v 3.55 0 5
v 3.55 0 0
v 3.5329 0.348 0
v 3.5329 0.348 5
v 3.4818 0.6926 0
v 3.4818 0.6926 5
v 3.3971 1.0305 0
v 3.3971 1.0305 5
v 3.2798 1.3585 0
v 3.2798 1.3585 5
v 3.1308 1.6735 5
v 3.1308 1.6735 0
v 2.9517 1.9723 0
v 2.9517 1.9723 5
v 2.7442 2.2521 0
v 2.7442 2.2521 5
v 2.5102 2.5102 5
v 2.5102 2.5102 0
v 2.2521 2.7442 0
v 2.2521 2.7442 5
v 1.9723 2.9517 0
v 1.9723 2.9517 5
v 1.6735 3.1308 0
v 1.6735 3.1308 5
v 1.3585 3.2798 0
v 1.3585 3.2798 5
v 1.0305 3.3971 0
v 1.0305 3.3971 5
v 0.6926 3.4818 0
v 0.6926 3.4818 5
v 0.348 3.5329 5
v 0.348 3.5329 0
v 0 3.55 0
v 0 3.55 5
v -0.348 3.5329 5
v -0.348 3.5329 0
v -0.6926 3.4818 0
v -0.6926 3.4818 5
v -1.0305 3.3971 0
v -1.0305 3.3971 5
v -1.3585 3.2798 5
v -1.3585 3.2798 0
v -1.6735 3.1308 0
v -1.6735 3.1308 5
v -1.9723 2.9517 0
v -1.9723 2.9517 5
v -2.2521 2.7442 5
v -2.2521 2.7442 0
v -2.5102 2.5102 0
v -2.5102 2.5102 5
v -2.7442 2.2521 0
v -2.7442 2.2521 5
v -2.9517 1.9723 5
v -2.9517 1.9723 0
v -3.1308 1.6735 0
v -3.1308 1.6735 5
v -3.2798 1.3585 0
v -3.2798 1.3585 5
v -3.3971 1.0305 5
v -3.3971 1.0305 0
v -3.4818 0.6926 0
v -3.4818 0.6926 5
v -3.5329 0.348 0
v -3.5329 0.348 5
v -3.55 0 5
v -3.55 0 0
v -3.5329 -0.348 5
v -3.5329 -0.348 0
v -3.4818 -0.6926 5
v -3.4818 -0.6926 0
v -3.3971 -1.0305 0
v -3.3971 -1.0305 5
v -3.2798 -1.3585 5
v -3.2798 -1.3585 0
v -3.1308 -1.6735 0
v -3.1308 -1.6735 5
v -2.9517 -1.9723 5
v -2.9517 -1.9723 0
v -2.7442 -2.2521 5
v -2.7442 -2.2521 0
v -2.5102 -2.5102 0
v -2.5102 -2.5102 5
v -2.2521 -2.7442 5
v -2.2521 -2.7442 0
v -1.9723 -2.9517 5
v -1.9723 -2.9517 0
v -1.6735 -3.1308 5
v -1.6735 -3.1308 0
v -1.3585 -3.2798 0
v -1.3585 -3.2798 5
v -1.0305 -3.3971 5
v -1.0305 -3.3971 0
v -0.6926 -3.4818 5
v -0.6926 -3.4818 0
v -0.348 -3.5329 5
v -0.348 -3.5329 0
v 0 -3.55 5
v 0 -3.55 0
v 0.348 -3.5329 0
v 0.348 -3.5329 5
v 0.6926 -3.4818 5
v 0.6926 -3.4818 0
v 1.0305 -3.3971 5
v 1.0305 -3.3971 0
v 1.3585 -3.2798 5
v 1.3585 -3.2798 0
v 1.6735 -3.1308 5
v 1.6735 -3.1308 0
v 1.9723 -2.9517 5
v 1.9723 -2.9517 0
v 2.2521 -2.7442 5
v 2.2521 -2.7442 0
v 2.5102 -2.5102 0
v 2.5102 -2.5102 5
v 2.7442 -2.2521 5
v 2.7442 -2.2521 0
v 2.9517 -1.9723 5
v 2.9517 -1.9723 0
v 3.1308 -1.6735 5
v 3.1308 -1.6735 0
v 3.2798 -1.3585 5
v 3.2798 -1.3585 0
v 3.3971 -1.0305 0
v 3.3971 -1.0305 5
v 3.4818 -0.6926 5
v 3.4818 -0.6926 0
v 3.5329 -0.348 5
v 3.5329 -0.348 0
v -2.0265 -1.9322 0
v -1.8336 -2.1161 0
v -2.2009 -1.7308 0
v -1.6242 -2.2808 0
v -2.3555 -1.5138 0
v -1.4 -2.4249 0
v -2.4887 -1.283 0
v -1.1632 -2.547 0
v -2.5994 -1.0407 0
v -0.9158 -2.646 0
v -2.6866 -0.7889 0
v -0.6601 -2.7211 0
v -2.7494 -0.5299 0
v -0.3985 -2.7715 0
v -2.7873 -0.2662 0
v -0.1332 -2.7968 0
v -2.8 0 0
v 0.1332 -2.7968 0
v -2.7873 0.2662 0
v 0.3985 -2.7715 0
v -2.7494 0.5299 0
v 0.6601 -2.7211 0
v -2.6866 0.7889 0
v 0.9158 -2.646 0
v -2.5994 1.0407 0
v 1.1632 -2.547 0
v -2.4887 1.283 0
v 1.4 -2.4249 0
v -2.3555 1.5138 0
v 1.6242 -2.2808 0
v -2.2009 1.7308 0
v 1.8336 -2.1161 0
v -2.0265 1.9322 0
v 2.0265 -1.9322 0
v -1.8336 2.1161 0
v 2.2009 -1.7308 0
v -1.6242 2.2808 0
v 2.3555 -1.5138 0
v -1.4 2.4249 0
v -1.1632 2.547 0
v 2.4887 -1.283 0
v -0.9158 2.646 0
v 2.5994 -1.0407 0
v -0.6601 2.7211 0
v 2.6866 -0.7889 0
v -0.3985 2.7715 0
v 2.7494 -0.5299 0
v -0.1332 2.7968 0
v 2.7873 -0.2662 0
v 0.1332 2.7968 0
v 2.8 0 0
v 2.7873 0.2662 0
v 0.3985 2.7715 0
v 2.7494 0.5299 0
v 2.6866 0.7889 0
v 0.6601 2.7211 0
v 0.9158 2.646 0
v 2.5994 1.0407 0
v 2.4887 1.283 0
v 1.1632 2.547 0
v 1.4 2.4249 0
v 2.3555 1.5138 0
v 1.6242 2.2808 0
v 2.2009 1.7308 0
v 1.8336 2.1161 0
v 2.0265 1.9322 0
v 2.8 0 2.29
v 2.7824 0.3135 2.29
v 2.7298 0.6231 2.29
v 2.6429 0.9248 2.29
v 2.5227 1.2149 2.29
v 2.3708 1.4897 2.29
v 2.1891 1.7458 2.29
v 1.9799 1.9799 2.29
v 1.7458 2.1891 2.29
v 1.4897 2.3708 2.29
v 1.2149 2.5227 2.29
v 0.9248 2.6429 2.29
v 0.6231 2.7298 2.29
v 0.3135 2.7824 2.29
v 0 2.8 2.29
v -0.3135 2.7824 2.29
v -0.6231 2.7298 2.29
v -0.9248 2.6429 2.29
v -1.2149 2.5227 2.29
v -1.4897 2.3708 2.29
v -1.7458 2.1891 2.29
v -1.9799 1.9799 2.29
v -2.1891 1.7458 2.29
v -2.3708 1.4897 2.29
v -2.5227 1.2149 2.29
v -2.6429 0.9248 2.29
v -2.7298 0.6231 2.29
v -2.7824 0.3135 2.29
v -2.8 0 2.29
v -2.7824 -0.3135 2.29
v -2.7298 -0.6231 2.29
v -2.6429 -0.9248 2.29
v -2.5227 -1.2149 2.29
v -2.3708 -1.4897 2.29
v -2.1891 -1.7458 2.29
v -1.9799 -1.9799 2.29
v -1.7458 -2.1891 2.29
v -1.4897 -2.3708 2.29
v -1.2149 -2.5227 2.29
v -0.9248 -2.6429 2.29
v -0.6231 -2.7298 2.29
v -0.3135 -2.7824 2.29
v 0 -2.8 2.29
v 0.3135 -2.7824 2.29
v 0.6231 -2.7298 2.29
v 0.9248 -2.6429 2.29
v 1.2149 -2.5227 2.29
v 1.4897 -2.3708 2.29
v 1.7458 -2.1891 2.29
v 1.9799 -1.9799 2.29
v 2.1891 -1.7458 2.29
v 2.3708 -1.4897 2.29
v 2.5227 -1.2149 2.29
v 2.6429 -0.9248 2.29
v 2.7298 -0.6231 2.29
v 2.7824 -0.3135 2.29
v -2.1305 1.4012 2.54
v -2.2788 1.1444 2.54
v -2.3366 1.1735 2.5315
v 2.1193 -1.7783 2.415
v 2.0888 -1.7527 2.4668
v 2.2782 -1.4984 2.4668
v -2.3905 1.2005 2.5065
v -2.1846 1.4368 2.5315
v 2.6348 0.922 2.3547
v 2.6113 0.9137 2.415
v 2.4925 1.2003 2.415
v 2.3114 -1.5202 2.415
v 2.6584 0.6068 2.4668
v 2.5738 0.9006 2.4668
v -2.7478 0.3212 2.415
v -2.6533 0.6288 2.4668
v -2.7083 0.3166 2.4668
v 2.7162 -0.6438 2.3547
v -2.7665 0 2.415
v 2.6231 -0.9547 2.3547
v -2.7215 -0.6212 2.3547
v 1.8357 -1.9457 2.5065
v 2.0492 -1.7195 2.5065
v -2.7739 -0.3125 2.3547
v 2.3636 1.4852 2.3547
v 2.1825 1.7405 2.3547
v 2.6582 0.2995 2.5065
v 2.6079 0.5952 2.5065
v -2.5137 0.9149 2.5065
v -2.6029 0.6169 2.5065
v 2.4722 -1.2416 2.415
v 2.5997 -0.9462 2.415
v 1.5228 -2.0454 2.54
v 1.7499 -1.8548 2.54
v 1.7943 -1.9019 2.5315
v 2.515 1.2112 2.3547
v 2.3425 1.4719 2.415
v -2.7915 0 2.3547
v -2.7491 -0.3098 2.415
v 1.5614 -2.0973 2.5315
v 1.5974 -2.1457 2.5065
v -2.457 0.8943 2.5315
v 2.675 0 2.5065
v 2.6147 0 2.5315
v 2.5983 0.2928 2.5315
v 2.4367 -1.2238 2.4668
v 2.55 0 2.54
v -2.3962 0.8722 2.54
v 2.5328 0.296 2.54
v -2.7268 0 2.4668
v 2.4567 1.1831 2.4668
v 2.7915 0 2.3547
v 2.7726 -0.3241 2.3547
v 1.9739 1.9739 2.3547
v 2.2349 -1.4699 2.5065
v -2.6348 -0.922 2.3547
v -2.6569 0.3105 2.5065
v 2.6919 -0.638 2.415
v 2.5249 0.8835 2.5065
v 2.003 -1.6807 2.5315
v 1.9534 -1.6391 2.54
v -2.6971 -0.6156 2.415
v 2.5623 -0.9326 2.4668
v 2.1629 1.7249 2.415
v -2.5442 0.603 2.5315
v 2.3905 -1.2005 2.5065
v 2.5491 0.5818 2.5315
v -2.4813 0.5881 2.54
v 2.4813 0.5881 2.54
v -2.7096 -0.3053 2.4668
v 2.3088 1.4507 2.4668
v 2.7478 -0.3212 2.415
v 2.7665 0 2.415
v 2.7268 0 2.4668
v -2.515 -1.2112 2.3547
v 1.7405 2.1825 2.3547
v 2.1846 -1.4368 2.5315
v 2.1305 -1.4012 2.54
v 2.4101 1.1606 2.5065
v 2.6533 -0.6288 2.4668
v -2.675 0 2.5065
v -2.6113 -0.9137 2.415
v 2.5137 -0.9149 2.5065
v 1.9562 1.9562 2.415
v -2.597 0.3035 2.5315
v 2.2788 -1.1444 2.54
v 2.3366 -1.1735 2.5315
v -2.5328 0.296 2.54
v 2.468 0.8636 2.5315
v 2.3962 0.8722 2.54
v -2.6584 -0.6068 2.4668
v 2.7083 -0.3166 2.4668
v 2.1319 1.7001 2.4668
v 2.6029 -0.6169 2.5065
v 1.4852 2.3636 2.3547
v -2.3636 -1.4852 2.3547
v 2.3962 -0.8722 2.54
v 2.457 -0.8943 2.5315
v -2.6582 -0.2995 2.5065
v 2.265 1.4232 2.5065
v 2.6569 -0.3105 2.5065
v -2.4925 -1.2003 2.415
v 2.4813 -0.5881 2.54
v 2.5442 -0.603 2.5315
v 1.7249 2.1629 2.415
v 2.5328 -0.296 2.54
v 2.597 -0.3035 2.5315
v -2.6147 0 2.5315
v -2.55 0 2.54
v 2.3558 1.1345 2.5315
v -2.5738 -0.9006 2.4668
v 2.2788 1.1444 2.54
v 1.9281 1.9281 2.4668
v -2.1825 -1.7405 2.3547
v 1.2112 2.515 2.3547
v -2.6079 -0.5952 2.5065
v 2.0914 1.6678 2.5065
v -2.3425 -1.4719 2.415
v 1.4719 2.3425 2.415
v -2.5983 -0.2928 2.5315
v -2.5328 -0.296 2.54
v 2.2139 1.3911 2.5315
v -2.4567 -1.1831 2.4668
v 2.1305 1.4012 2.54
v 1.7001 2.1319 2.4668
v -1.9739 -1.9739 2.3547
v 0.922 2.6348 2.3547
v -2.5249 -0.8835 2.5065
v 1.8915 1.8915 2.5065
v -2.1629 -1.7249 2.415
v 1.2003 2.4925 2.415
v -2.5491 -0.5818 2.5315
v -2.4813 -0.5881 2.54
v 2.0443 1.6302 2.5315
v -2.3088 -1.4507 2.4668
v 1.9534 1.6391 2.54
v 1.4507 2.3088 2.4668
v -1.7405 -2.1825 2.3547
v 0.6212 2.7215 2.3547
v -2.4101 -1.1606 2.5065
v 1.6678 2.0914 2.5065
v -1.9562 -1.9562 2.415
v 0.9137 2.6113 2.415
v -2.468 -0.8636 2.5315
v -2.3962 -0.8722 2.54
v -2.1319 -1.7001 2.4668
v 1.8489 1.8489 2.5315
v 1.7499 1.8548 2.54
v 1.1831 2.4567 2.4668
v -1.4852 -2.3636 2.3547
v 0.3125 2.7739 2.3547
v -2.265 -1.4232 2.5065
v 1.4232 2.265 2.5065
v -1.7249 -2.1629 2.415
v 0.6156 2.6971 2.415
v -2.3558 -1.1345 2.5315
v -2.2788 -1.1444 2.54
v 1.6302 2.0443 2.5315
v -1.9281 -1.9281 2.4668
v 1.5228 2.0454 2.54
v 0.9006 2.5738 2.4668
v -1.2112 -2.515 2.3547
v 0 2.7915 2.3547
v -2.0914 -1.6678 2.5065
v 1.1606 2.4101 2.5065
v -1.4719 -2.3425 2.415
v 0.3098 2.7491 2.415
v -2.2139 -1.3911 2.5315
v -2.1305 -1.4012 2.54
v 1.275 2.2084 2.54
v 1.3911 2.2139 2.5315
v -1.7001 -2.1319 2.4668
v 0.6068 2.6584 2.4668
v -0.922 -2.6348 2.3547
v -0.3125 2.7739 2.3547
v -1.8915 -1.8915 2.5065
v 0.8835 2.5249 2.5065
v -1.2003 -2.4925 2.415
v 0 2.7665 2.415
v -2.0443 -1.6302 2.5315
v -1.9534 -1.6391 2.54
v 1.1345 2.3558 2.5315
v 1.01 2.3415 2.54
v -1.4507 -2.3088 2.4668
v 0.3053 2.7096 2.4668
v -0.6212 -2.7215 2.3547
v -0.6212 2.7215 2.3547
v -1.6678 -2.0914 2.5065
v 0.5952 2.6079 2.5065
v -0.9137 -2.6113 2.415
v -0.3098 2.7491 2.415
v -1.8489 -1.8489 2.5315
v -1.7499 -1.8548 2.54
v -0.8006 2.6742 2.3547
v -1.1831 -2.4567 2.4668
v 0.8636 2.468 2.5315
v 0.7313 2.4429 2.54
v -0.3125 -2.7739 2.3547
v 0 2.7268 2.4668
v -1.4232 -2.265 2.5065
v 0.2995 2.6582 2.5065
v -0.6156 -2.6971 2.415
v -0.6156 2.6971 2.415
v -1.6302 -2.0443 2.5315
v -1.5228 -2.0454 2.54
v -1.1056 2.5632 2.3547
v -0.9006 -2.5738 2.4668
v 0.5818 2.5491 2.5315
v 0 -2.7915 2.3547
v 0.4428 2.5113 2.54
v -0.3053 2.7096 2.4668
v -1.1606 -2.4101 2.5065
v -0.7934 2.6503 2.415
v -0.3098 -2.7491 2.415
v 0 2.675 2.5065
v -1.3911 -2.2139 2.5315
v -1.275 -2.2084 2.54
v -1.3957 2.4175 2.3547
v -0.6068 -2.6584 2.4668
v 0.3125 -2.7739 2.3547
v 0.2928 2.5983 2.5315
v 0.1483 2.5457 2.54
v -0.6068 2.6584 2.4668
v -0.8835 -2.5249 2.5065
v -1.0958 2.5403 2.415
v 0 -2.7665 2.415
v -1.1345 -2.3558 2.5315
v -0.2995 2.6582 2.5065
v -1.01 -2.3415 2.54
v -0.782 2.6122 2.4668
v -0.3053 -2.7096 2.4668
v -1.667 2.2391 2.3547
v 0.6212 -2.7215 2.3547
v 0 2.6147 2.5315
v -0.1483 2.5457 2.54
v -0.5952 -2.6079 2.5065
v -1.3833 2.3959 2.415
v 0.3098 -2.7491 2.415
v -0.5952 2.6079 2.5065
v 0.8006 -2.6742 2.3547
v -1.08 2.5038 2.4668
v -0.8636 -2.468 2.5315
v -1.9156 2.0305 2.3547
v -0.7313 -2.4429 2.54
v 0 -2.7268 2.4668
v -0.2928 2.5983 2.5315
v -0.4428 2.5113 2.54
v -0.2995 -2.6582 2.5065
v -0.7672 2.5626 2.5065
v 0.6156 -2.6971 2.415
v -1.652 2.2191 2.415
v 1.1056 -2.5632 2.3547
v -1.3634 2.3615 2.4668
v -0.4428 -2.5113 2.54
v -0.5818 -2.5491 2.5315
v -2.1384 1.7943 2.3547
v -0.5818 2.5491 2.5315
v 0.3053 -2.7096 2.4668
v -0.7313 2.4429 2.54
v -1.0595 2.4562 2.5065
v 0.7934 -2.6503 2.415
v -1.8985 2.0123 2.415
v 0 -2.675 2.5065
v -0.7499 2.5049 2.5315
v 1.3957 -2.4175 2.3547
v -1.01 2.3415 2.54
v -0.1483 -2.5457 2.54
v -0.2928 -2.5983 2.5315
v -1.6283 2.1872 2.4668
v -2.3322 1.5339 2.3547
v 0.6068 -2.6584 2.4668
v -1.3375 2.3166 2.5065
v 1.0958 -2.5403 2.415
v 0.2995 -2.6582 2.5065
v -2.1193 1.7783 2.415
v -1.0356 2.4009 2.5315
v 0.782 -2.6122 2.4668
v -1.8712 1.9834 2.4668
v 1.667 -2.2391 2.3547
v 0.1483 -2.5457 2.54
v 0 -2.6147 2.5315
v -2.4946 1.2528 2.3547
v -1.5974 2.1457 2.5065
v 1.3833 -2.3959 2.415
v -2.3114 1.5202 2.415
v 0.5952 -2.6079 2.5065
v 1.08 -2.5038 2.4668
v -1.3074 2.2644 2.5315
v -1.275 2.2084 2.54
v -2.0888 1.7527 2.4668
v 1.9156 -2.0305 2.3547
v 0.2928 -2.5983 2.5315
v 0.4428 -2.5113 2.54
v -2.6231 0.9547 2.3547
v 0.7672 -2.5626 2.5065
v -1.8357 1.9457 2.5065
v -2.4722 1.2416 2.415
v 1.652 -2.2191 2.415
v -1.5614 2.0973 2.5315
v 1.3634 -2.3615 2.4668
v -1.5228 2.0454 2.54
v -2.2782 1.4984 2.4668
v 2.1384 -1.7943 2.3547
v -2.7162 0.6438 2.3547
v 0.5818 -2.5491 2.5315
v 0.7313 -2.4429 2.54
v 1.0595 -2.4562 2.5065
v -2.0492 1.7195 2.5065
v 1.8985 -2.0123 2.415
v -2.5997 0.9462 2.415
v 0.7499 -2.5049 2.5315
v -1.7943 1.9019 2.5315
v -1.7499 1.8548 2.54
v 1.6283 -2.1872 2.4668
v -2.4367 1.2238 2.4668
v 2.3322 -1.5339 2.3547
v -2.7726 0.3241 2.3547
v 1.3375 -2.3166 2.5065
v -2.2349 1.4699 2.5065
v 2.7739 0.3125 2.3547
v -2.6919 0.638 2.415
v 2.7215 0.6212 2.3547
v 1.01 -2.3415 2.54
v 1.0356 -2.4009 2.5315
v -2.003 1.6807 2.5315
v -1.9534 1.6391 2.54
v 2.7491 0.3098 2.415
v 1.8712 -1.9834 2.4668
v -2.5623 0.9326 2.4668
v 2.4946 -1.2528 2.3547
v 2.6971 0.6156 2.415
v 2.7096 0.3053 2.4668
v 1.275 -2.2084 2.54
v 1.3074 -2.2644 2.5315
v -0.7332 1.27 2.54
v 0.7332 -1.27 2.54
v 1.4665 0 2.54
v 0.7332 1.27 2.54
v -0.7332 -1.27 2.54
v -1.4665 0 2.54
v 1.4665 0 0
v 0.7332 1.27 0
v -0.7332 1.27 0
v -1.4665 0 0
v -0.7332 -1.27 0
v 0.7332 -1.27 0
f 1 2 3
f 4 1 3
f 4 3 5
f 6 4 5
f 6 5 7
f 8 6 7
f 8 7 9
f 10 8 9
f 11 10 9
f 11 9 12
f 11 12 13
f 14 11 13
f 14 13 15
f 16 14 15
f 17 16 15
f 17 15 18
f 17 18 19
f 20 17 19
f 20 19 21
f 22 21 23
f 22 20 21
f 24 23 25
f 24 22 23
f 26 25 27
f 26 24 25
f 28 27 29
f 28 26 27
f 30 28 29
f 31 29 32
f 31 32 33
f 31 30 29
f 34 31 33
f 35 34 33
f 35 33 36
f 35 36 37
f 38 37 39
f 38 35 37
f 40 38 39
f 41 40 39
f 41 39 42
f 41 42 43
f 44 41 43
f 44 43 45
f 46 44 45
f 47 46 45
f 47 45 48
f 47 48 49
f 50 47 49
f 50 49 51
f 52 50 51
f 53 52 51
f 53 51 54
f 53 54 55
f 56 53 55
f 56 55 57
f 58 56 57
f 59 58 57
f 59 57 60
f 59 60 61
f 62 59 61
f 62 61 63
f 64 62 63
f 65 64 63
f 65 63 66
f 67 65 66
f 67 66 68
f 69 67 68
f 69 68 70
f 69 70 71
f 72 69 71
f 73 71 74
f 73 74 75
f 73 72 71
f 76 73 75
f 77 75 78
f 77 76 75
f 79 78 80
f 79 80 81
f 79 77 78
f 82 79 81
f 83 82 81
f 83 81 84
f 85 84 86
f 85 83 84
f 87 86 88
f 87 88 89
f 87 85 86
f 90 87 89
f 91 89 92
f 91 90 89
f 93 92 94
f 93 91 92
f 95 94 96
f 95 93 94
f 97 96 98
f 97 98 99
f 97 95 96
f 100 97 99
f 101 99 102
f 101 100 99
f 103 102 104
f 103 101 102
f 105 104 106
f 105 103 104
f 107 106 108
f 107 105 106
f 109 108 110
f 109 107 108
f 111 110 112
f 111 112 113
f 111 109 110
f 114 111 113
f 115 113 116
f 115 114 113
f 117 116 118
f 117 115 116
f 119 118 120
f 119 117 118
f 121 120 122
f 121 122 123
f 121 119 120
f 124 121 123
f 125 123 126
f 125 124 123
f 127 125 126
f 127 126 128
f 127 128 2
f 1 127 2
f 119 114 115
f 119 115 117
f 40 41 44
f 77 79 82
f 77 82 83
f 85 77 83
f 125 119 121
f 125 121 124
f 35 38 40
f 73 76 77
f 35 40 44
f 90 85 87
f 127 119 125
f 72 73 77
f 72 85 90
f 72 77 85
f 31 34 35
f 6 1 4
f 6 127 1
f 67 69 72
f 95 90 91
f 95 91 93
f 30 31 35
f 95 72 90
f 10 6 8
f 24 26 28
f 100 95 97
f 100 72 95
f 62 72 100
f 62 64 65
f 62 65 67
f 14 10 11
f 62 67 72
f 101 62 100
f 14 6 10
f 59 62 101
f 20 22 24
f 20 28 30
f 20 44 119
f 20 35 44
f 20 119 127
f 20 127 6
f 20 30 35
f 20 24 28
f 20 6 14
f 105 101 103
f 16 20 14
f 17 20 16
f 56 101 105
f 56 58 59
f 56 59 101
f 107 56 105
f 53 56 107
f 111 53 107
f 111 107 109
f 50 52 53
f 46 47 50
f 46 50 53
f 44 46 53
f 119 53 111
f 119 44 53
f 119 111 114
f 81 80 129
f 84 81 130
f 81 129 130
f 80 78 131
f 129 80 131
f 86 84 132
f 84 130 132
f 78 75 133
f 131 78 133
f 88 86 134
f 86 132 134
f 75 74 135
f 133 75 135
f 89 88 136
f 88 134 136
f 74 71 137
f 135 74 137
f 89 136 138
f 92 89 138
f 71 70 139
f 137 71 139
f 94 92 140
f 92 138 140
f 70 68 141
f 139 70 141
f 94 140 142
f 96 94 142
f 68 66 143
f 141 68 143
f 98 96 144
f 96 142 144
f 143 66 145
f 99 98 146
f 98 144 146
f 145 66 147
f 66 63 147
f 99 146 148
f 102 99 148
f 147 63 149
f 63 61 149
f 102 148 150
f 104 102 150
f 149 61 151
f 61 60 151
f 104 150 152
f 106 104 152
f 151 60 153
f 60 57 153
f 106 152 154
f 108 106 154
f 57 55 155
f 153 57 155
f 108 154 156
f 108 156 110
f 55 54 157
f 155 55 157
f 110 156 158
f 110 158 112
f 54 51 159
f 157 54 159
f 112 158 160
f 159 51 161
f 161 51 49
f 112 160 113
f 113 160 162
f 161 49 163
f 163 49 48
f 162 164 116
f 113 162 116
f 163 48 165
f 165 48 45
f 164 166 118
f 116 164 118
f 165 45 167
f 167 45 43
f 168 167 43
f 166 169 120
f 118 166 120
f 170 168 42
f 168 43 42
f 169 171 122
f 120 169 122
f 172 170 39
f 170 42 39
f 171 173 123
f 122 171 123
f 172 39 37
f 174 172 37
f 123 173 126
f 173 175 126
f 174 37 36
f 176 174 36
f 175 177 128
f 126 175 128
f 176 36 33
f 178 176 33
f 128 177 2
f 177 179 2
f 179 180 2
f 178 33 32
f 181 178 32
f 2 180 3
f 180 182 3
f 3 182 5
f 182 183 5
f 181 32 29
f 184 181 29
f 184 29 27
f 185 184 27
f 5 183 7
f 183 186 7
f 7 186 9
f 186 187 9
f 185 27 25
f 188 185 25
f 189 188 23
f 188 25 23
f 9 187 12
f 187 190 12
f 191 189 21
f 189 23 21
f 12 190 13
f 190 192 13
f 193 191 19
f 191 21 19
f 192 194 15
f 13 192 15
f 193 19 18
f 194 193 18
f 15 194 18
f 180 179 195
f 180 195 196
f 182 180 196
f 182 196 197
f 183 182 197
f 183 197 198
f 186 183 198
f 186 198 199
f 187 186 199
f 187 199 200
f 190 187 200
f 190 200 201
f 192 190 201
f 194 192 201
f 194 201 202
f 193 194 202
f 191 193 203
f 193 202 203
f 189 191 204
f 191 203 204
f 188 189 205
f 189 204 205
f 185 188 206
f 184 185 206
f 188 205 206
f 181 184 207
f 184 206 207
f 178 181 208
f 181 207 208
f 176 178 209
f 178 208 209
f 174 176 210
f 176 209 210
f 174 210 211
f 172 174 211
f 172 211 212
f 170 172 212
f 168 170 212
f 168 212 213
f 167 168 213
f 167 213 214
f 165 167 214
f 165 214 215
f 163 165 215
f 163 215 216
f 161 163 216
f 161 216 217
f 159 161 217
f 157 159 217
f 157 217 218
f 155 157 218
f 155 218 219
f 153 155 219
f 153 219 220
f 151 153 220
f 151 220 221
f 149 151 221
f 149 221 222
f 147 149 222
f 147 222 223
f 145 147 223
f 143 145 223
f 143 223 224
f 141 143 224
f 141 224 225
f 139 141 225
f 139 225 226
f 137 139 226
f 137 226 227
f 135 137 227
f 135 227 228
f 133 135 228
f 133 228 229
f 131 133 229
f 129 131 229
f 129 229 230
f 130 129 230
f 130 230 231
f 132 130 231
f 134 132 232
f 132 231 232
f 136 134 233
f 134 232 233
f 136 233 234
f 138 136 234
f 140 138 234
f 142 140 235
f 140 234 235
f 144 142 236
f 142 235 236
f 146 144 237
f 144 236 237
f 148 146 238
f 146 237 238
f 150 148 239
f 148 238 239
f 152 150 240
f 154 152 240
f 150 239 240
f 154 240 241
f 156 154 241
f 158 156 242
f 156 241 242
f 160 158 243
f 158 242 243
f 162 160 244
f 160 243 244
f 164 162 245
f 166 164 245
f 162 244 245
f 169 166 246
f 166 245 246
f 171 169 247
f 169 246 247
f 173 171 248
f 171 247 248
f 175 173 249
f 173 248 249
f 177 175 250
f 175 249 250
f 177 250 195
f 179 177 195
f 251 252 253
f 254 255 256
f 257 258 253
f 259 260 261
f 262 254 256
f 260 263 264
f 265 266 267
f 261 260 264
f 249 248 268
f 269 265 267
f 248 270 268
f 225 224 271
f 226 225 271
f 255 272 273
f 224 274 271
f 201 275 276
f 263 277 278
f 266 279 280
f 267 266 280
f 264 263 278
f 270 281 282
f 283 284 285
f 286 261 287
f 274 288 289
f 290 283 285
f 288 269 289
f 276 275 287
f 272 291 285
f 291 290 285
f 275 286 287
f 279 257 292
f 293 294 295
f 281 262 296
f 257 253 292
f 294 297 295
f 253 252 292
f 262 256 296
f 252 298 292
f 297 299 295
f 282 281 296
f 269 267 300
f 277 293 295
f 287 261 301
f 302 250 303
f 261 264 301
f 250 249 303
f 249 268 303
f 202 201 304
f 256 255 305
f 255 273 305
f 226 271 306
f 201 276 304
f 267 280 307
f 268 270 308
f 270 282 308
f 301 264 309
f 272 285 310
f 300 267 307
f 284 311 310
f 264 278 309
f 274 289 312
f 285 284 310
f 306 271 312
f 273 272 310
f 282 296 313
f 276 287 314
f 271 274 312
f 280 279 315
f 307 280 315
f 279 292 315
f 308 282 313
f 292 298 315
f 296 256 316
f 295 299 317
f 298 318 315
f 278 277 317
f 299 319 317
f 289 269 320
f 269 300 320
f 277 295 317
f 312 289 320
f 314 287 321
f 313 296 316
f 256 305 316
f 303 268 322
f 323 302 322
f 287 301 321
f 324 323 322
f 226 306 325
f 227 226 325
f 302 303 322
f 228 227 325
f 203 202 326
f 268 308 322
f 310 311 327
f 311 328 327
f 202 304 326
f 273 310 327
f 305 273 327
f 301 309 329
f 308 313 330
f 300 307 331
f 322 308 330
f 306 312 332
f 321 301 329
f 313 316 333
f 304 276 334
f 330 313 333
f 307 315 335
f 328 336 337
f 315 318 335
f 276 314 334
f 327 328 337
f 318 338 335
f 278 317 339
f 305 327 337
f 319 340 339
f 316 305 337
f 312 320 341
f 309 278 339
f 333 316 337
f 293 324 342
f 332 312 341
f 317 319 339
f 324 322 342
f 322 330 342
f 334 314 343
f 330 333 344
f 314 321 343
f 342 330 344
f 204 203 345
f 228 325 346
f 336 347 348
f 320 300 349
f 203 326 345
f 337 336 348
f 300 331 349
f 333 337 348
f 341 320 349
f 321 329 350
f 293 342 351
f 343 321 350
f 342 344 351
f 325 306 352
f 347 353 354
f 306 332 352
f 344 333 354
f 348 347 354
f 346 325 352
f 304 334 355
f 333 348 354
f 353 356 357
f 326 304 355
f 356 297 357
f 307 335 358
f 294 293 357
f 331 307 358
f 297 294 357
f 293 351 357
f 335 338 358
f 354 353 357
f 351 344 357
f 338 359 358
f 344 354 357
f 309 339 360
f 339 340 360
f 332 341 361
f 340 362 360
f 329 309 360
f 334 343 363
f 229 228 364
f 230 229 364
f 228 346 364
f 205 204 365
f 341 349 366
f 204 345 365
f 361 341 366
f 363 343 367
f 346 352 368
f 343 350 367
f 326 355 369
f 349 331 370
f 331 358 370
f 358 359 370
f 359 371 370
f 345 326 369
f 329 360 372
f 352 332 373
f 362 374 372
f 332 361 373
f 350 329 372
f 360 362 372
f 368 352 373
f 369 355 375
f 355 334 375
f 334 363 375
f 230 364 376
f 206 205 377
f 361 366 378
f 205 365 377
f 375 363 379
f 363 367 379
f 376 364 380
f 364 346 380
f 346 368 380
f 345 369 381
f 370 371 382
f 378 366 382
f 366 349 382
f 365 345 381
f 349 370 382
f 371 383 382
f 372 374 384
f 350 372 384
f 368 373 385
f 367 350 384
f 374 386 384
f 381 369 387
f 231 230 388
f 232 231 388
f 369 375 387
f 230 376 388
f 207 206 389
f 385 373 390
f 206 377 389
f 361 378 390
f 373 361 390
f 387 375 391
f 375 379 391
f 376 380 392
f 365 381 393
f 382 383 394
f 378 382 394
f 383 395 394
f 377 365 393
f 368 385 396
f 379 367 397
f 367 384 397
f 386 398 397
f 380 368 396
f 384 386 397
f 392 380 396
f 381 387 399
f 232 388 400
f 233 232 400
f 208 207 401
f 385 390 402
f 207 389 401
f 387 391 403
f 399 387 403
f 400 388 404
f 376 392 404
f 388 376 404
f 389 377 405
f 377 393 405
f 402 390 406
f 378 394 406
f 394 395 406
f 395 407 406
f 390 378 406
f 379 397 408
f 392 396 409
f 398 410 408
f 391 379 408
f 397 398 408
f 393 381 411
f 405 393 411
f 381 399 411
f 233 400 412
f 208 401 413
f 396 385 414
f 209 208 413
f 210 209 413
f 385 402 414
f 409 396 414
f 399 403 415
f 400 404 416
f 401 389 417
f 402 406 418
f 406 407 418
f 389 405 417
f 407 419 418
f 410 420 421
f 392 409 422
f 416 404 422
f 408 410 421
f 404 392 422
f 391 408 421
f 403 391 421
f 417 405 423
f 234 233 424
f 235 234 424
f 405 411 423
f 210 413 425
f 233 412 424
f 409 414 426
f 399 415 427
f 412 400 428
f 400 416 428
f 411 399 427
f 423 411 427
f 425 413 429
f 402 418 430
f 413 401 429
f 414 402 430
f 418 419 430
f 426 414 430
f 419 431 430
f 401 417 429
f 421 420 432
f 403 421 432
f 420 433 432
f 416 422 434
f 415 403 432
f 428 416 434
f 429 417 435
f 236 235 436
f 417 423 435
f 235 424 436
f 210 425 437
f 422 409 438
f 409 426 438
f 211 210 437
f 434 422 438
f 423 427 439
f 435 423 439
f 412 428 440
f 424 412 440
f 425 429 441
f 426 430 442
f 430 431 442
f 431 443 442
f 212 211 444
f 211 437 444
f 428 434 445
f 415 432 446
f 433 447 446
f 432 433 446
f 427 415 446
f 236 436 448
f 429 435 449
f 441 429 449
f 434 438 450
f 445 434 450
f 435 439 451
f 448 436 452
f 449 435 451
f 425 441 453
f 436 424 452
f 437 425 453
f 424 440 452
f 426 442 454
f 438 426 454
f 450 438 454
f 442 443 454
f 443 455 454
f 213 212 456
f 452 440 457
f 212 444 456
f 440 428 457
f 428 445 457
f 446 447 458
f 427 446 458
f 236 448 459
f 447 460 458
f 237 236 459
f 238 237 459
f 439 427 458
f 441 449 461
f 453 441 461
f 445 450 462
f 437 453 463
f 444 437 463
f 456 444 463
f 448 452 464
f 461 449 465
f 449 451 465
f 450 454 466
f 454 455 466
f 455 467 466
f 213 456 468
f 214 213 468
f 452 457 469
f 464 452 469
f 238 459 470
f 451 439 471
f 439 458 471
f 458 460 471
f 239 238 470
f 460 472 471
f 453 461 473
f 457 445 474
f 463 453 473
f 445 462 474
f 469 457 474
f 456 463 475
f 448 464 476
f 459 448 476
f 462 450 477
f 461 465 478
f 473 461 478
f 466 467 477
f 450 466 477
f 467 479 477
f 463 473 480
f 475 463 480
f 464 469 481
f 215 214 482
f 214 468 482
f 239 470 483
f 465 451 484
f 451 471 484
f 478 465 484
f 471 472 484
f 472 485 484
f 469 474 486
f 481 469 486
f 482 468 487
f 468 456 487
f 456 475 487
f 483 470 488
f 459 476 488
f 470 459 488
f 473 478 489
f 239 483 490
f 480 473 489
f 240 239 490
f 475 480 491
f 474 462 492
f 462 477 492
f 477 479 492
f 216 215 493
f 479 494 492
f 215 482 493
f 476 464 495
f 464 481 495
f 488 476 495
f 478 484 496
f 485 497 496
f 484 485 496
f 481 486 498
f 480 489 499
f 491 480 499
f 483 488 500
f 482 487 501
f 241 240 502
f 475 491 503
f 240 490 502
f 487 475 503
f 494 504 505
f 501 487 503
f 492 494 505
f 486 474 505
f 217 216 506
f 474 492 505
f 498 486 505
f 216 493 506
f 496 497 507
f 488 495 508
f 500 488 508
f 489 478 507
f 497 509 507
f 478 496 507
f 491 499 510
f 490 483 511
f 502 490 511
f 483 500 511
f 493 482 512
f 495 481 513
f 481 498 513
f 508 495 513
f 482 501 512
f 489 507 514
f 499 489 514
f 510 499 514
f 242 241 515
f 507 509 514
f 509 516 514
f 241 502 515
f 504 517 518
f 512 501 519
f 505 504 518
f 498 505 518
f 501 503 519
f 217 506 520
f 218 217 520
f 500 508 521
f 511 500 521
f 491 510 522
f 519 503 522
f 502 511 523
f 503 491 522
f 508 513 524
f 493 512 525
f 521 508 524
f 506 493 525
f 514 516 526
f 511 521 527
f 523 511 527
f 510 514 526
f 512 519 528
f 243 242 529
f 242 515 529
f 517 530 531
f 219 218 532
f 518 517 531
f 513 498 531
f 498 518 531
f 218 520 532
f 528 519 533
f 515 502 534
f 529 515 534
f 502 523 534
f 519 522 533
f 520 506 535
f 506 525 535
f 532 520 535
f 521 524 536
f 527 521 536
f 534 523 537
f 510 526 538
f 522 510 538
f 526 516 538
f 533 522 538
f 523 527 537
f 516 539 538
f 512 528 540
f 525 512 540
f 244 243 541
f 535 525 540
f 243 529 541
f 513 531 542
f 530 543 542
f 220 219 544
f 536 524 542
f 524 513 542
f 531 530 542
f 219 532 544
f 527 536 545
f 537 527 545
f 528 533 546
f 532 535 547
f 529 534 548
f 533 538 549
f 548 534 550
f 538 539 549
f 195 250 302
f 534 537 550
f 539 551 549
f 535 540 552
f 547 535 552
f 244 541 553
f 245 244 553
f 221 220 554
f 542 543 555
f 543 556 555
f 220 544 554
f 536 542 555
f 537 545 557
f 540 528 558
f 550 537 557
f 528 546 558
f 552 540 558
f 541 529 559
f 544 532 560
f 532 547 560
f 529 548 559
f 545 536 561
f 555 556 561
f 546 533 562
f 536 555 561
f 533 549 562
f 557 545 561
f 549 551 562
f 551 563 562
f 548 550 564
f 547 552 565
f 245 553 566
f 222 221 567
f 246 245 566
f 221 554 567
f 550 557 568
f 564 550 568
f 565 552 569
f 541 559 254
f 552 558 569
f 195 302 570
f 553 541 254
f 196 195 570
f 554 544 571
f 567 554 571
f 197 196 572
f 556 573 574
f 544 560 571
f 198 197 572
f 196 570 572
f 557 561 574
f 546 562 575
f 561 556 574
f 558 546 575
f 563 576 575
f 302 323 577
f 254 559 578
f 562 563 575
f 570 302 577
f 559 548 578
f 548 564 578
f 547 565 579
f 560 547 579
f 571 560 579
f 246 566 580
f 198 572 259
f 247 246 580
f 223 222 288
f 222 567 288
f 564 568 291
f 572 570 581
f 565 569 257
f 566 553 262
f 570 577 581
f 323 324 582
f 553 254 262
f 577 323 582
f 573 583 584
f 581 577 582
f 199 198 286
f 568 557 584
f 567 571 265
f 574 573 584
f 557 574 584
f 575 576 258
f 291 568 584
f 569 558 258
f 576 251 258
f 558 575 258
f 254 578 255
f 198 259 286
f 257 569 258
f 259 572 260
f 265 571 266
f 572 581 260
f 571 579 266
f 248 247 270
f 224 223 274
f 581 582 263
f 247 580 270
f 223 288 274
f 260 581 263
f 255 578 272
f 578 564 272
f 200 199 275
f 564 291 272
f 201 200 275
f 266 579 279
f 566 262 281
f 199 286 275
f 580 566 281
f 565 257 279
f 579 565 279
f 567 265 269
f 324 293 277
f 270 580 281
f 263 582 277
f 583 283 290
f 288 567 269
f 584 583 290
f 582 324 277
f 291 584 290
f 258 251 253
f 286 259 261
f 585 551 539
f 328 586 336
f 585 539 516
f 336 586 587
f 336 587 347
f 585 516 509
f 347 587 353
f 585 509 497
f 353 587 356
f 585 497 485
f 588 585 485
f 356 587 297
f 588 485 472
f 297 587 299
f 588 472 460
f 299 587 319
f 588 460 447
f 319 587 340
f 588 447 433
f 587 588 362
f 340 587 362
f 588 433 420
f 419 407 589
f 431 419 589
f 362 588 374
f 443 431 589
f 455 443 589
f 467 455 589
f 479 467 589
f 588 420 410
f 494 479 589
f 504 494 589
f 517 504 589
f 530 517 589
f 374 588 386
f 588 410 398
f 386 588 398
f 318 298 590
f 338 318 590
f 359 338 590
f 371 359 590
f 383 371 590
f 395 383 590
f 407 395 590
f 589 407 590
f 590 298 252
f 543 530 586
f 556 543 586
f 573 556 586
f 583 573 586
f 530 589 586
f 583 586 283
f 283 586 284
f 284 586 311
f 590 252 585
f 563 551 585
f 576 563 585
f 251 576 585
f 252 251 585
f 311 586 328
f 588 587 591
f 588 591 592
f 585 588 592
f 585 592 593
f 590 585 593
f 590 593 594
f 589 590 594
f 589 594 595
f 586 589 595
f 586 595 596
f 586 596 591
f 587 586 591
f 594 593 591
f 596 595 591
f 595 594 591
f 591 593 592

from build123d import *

# Parameters (mm, degrees)
CYLINDER_R        = 2.8
CYLINDER_DEPTH    = 2.54
POCKET_DEPTH      = 5
FILLET_R          = 0.25
CYLINDER001_R     = 3.55
CYLINDER001_DEPTH = 5


with BuildPart() as bolt:
    # Cylinder → Cylinder (new body)
    with BuildSketch(Plane.XY):
        Circle(CYLINDER_R)
    extrude(amount=CYLINDER_DEPTH)

    # Sketch → Pocket (cut)
    with BuildSketch(Plane.XY.offset(2.54)):
        Polygon((-0.733235, 1.27), (-1.46647, 0), (-0.733235, -1.27), (0.733235, -1.27), (1.46647, 0), (0.733235, 1.27), align=None)
    extrude(amount=-POCKET_DEPTH, mode=Mode.SUBTRACT)

    # Fillet
    fillet_edges = [bolt.edges().sort_by_distance(p)[0] for p in [
        (-2.8, 0, 2.54),
    ]]
    fillet(fillet_edges, radius=FILLET_R)


with BuildPart() as bolt_hook:
    # Cylinder001 → Cylinder001 (new body)
    with BuildSketch(Plane.XY):
        Circle(CYLINDER001_R)
    extrude(amount=CYLINDER001_DEPTH)

    # Cut: cut Bolt
    add(bolt.part, mode=Mode.SUBTRACT)


solid = bolt_hook.part
